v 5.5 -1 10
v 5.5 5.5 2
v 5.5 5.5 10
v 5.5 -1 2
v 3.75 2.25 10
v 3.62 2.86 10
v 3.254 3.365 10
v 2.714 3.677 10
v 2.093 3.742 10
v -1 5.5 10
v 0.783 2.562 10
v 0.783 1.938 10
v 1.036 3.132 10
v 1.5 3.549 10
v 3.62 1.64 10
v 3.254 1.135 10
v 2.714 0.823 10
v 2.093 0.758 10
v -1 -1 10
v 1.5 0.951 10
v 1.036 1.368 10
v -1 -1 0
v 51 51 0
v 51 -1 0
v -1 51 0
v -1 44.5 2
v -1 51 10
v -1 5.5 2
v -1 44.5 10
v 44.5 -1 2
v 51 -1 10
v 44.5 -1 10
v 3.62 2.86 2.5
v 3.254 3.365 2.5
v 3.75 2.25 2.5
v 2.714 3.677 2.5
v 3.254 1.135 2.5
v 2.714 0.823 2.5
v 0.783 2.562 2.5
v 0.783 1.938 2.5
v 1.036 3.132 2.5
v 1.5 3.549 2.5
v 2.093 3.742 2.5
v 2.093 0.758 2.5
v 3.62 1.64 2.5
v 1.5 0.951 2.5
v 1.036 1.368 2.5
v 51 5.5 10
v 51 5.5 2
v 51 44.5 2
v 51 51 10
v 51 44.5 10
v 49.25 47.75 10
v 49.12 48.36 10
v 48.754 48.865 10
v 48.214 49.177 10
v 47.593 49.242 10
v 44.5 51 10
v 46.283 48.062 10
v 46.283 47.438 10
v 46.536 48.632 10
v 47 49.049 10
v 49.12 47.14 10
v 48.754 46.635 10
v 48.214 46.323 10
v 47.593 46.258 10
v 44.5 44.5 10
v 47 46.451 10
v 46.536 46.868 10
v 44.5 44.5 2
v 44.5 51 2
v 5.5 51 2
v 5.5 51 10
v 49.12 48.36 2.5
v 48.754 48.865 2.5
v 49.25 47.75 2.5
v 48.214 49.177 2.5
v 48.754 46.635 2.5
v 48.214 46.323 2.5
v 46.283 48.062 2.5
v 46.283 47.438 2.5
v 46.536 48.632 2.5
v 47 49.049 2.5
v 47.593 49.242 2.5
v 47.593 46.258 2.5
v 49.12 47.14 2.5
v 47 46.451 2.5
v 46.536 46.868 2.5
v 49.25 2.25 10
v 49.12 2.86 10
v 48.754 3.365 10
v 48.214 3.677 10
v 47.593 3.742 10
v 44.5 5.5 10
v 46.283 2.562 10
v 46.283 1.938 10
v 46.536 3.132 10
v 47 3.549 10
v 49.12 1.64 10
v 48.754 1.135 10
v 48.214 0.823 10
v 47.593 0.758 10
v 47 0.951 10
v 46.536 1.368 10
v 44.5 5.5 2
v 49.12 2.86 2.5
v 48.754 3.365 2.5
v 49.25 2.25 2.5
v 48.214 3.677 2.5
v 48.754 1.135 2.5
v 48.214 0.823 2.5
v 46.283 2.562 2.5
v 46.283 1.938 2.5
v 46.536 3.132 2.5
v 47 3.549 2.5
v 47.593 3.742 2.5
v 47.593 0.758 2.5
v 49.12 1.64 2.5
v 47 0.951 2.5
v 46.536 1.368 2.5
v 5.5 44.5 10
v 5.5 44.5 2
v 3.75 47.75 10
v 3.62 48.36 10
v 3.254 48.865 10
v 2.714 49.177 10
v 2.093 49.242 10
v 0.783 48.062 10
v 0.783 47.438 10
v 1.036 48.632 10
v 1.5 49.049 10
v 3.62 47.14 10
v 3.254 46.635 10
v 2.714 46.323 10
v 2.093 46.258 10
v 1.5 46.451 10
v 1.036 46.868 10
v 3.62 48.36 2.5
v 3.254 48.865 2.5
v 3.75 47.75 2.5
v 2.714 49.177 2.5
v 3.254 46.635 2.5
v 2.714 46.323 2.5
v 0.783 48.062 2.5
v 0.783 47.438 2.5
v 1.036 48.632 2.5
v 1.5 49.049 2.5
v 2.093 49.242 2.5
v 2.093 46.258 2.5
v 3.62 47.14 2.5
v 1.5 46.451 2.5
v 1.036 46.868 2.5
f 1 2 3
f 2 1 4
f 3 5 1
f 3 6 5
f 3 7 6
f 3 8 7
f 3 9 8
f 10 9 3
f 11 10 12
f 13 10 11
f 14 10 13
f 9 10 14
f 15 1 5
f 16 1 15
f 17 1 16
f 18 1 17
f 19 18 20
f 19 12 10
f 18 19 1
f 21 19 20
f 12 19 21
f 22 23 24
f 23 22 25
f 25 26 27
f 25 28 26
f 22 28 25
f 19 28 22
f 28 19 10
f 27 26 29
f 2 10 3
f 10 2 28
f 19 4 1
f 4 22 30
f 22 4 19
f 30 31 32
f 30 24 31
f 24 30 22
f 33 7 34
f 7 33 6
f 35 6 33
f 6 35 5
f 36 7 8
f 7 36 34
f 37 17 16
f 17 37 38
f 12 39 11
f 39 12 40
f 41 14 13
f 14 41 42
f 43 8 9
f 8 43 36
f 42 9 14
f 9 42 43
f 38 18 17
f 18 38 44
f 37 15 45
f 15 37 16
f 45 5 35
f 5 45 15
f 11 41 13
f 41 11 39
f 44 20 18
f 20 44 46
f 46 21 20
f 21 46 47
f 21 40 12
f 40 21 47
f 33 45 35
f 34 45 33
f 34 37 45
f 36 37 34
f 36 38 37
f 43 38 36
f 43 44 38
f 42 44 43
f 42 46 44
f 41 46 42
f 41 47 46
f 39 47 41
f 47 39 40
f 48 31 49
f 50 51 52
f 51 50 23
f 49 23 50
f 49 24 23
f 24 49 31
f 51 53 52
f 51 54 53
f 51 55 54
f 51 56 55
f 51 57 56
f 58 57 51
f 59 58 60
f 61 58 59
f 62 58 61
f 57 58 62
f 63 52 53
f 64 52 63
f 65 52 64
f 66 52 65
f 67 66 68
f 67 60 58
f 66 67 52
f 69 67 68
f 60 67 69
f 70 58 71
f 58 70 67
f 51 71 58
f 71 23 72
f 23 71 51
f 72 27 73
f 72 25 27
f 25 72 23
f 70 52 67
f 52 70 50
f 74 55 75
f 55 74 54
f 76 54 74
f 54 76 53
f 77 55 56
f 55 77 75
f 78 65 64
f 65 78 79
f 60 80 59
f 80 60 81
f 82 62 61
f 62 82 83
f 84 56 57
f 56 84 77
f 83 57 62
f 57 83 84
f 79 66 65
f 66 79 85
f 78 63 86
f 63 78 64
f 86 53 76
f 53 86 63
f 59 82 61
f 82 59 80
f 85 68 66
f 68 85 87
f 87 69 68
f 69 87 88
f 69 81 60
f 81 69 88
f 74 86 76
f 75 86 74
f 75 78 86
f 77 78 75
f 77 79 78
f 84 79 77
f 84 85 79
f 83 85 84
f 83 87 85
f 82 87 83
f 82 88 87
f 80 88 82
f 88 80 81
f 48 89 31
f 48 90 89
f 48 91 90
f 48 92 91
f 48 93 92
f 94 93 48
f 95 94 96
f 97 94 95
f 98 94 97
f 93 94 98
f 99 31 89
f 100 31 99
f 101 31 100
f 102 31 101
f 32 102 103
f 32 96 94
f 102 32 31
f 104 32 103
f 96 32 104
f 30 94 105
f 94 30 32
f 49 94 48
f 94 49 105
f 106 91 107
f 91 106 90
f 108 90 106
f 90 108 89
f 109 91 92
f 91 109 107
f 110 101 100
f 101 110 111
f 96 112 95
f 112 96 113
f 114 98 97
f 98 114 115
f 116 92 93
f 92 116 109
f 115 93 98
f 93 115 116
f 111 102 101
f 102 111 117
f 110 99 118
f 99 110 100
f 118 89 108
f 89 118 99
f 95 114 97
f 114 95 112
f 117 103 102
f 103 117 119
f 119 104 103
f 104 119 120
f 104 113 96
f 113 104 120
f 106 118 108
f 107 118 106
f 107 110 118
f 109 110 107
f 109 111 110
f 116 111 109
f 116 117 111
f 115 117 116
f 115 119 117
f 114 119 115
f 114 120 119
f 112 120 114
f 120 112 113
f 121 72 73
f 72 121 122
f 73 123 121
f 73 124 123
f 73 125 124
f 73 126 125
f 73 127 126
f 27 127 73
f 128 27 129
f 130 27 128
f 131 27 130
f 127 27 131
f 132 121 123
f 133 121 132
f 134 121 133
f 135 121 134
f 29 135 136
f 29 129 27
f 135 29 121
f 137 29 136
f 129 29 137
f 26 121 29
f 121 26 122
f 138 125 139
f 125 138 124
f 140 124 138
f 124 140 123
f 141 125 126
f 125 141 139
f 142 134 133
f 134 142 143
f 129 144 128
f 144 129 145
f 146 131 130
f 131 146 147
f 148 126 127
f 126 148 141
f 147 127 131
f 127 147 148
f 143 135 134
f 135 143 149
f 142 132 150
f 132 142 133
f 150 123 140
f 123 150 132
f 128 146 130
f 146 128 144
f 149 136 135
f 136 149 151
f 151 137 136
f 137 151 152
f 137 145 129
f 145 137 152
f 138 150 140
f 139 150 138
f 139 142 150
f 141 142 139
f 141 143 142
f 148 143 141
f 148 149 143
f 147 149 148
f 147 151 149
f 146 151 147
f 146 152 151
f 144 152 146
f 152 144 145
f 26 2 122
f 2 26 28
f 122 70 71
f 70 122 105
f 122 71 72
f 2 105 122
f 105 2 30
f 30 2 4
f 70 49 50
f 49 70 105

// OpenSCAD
bottom_thickness = 2;
board_X = 50;
board_Y = 50;
standoff_offset=1.0;
chassis_board_dim = [board_X+(standoff_offset*2),board_Y+(standoff_offset*2),bottom_thickness];

module standoff_holder(xyz=[0,0,0]) {
    insert_height = 10;
    bottom_thickness = 2;
    cube_dim = [6,6];
    standoff_r = 1.4;

    translate([xyz[0], xyz[1], xyz[2]+bottom_thickness]){
    difference(){
    translate([0,0,-bottom_thickness + (insert_height + bottom_thickness)/2]){
        cube([cube_dim[0],cube_dim[1],insert_height+bottom_thickness],center=true);
    }

    cylinder(20,standoff_r ,standoff_r ,$fn=100);
    }
    }
}

module heat_set_insert(translate_pos = [0,0,0], insert_xy_dim = [6.5,6.5], insert_height = 10, hole_r=1.5, hole_h=7.5, cylinder_fn = 15){
    insert_width = insert_xy_dim[0];
    insert_depth = insert_xy_dim[1];
    insert_height = insert_height;
    
    translate(translate_pos){
        difference(){
        cube([insert_width,insert_depth,insert_height]);
            translate([insert_width/2,insert_depth/2,insert_height - hole_h]){
                cylinder(hole_h+1,hole_r,hole_r, $fn=cylinder_fn);
            }
        }
    }
}


translate([-standoff_offset,-standoff_offset,0]){
    cube(chassis_board_dim);
}

heat_set_insert(translate_pos=[0-standoff_offset,0-standoff_offset,0]);
heat_set_insert(translate_pos=[50-6.5+standoff_offset,50-6.5+standoff_offset,0]);
heat_set_insert(translate_pos=[50-6.5+standoff_offset,0-standoff_offset,0]);
heat_set_insert(translate_pos=[0-standoff_offset,50-6.5+standoff_offset,0]);
    
